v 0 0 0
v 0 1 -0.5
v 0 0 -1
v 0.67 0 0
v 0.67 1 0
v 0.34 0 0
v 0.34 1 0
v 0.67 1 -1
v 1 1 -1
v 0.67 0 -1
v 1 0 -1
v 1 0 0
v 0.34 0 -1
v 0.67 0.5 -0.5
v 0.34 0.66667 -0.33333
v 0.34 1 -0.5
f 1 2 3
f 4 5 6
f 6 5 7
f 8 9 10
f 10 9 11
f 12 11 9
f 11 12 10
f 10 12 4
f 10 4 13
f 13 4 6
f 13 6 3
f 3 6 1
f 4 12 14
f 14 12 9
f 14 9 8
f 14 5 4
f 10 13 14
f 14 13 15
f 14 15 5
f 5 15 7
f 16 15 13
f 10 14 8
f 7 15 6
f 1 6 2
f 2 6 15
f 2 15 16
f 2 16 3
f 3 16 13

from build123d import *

# Parameters (mm, degrees)
SKETCH1_W               = 1
SKETCH1_H               = 1
BOSS_EXTRUDE1_DEPTH     = 1
CUT_EXTRUDE1_DEPTH      = 2.732050808
CUT_EXTRUDE1_DEPTH_BACK = 0.33
CUT_EXTRUDE2_DEPTH      = 0.33
CUT_EXTRUDE3_DEPTH      = 2.732050808
CUT_EXTRUDE3_DEPTH_BACK = 0.34


with BuildPart() as part:
    # Sketch1 → Boss-Extrude1 (new body)
    with BuildSketch(Plane(origin=(0, 0, 0), x_dir=(1, 0, 0), z_dir=(0, 1, 0))):
        with Locations((0.5, 0.5)):
            Rectangle(SKETCH1_W, SKETCH1_H)
    extrude(amount=BOSS_EXTRUDE1_DEPTH)

    # Sketch2 → Cut-Extrude1 (cut, two sides: drawn at the far end of the back side and taken through both)
    with BuildSketch(Plane(origin=(1, 0, 0), x_dir=(0, 0, -1), z_dir=(1, 0, 0)).offset(-CUT_EXTRUDE1_DEPTH_BACK)):
        Polygon((-9.071067812, -9.071067812), (0, 0), (1, 1), (10.071067812, 10.071067812), (-8.071067812, 28.213203436), (-27.213203436, 9.071067812), align=None)
    extrude(amount=CUT_EXTRUDE1_DEPTH + CUT_EXTRUDE1_DEPTH_BACK, mode=Mode.SUBTRACT)

    # Sketch3 → Cut-Extrude2 (cut)
    with BuildSketch(Plane(origin=(0.67, 0, 0), x_dir=(0, 0, -1), z_dir=(1, 0, 0))):
        Polygon((0, 1), (1, 0), (1, 1), align=None)
    extrude(amount=-CUT_EXTRUDE2_DEPTH, mode=Mode.SUBTRACT)

    # Sketch5 → Cut-Extrude3 (cut, two sides: drawn at the far end of the back side and taken through both)
    with BuildSketch(Plane.ZY.offset(-CUT_EXTRUDE3_DEPTH_BACK)):
        Polygon((-6.737047019, -11.474094038), (-1, 0), (-0.5, 1), (0, 0), (5.737047019, -11.474094038), (5.737047019, 14.182760211), (-6.737047019, 14.182760211), align=None)
    extrude(amount=CUT_EXTRUDE3_DEPTH + CUT_EXTRUDE3_DEPTH_BACK, mode=Mode.SUBTRACT)


solid = part.part
